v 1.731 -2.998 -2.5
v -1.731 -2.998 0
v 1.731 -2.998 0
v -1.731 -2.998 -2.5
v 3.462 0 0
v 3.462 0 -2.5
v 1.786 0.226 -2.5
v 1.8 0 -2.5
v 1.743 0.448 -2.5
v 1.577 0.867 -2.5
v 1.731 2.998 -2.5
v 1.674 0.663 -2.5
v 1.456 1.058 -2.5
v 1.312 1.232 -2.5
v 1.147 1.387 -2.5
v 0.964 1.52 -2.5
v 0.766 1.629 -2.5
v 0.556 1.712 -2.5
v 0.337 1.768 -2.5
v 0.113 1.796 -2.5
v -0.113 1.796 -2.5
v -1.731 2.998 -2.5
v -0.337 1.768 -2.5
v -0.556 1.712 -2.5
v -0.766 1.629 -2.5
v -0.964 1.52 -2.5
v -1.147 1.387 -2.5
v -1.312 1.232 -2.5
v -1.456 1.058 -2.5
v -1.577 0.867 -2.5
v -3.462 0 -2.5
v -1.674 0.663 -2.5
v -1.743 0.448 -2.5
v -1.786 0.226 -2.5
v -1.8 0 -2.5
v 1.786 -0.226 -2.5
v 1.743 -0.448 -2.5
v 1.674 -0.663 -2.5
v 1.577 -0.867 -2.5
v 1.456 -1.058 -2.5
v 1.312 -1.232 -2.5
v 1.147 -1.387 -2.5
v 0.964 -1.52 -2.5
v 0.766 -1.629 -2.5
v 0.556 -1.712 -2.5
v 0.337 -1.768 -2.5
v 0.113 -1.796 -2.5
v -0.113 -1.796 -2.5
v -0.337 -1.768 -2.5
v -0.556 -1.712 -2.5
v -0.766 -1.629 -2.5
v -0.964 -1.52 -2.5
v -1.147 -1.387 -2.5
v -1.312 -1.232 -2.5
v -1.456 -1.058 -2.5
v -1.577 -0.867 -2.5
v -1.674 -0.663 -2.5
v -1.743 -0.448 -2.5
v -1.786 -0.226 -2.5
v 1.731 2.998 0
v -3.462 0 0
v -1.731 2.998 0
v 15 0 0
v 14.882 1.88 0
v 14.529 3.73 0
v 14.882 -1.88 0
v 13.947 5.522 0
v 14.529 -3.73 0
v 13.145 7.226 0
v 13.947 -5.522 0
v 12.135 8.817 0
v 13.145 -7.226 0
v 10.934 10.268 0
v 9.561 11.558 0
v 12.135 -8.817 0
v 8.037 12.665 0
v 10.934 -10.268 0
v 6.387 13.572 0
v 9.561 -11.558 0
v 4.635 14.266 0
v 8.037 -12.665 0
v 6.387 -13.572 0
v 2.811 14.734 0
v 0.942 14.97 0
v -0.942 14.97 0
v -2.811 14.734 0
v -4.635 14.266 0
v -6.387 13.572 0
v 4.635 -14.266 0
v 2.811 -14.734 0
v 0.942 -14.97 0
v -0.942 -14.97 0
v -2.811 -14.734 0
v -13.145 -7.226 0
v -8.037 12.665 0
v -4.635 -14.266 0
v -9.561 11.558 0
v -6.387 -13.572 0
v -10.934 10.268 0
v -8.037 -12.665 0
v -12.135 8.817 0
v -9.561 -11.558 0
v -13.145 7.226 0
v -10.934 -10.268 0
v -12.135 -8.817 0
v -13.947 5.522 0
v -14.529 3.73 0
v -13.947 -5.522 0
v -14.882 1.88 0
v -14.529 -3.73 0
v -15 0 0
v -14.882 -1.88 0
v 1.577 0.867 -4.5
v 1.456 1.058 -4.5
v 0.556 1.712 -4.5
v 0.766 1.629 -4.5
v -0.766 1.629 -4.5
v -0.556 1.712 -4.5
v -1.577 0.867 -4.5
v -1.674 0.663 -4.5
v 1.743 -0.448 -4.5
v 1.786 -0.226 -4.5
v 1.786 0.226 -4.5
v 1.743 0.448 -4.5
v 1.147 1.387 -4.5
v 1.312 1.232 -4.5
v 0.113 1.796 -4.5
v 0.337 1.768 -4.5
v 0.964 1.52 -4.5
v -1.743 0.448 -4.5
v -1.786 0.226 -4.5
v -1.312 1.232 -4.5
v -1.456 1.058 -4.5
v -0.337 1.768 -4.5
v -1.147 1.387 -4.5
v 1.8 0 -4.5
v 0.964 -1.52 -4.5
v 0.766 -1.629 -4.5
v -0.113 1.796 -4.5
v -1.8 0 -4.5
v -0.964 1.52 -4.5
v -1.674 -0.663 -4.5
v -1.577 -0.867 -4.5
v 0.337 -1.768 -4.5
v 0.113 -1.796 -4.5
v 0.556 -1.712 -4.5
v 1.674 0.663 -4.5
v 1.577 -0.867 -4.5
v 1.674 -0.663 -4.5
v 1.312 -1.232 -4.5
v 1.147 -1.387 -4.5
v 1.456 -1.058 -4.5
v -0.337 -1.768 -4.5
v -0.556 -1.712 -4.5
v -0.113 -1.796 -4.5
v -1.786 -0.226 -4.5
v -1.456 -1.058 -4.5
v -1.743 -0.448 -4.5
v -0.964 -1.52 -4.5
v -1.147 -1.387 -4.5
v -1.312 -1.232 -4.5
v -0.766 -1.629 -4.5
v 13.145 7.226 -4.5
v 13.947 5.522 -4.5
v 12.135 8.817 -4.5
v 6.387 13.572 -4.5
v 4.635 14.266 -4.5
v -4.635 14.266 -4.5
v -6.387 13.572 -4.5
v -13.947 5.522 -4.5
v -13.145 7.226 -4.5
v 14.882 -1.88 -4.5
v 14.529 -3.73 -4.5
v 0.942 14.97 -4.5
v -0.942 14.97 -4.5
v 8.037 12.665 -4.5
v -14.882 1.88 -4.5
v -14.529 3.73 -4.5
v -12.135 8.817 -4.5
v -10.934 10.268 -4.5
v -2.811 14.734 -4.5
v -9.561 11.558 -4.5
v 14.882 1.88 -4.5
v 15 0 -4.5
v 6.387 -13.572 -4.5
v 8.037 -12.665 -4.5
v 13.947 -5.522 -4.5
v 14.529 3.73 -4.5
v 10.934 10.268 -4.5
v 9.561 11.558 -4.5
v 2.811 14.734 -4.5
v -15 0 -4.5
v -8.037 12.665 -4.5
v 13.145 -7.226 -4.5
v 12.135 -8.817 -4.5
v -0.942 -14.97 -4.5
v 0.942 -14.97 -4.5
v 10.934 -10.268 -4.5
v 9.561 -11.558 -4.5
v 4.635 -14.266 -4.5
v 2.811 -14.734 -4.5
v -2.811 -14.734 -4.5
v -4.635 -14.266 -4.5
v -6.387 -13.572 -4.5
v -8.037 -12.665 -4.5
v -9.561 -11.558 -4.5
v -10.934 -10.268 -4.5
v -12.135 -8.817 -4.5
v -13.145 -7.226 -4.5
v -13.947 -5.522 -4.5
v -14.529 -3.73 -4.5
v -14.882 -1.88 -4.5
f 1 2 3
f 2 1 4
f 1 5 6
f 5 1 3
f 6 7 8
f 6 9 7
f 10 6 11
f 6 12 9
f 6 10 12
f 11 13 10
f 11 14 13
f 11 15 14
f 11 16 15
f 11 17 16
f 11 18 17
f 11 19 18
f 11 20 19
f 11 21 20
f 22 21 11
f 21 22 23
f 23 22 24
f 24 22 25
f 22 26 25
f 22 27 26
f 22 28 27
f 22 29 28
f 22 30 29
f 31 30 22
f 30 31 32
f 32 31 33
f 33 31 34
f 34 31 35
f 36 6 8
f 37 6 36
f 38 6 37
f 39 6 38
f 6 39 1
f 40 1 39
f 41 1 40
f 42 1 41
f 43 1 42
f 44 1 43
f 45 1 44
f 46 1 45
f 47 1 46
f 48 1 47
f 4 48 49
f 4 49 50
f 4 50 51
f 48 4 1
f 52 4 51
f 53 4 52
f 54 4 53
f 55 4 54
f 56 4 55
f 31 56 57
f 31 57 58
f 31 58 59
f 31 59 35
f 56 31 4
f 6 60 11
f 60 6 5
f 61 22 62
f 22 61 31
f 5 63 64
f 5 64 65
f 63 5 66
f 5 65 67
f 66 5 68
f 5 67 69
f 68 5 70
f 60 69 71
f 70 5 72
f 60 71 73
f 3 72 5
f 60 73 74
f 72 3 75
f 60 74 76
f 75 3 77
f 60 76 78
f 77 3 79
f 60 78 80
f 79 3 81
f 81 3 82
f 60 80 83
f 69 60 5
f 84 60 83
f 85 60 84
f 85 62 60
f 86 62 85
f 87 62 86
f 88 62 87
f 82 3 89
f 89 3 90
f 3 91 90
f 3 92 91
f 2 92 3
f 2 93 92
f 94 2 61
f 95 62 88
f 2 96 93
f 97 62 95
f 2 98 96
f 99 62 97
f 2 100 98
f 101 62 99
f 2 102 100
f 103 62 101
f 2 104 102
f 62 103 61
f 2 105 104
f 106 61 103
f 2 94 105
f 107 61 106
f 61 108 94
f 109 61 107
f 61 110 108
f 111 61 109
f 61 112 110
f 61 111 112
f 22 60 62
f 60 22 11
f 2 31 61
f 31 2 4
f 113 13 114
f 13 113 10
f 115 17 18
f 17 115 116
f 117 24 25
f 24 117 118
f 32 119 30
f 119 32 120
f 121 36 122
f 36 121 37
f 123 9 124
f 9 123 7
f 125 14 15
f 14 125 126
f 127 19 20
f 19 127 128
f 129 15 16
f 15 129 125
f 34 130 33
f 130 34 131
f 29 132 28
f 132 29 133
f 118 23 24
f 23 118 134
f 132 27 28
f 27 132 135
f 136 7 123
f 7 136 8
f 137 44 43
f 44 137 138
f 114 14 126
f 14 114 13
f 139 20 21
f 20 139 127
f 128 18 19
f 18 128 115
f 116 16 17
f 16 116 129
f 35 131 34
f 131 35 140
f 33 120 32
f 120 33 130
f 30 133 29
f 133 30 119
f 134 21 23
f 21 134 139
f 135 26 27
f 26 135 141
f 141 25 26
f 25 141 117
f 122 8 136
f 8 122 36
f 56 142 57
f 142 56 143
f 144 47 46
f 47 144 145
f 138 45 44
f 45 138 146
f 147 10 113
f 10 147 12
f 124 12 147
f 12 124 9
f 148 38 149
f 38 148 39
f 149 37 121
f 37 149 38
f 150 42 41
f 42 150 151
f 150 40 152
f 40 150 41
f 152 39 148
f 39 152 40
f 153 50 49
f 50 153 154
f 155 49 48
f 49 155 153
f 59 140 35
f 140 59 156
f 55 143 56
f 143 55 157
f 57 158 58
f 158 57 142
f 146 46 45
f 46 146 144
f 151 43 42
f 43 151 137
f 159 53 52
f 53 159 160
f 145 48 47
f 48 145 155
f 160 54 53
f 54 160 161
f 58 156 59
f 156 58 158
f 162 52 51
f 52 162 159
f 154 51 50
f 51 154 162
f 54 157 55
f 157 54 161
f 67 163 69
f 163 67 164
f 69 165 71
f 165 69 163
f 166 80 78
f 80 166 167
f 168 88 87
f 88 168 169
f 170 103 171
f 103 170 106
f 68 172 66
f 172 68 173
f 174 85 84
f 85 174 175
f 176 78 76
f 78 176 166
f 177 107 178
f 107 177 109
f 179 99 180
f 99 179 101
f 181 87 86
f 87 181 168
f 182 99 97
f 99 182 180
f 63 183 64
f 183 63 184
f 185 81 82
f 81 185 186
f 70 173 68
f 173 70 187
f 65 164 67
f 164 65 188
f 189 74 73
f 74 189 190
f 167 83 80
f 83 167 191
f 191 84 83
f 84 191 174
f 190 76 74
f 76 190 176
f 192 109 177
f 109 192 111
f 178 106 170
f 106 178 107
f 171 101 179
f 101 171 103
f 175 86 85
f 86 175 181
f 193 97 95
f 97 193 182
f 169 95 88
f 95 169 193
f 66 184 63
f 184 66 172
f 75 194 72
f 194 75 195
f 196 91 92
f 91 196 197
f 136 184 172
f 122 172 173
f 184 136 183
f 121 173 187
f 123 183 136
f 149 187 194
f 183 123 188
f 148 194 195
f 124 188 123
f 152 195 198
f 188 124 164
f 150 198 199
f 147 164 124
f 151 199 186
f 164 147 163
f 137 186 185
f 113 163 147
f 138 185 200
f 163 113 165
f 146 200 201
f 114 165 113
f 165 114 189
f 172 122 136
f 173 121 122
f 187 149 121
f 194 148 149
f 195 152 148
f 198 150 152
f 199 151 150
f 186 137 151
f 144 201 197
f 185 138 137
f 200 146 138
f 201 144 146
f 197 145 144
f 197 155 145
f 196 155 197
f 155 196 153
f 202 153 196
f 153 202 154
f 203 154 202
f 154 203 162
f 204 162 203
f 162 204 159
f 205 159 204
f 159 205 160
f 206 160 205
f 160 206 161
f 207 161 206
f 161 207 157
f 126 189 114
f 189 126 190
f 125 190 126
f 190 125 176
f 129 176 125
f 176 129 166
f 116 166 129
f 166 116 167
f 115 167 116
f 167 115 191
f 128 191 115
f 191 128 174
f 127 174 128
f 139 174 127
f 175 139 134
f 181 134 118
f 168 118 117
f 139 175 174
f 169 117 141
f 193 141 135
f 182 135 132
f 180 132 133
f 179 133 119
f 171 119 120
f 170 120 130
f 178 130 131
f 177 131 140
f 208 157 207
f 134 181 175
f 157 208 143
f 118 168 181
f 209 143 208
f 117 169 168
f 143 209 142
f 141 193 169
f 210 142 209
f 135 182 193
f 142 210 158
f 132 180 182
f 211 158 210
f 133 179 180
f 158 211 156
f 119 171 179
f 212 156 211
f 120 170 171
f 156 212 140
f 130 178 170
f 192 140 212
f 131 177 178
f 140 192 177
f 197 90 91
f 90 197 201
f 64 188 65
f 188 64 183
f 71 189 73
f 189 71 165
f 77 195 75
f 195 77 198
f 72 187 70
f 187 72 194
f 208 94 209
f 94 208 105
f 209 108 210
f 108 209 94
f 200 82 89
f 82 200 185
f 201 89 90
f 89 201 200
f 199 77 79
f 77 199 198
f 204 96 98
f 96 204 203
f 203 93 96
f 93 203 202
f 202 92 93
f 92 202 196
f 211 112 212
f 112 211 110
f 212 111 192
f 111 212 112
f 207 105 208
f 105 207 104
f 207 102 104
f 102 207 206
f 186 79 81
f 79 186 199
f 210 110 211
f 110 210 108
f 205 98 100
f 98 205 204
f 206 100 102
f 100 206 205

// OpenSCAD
$fn = 50;


difference() {
	union() {
		translate(v = [0, 0, -4.5000000000]) {
			cylinder(h = 4.5000000000, r = 15.0000000000);
		}
	}
	union() {
		translate(v = [0, 0, 0]) {
			rotate(a = [0, 0, 0]) {
				difference() {
					union() {
						translate(v = [0, 0, -2.5000000000]) {
							linear_extrude(height = 2.5000000000) {
								polygon(points = [[3.4620000000, 0.0000000000], [1.7310000000, 2.9981799479], [-1.7310000000, 2.9981799479], [-3.4620000000, 0.0000000000], [-1.7310000000, -2.9981799479], [1.7310000000, -2.9981799479]]);
							}
						}
					}
					union();
				}
			}
		}
		#translate(v = [0, 0, -100.0000000000]) {
			cylinder(h = 200, r = 1.8000000000);
		}
	}
}
